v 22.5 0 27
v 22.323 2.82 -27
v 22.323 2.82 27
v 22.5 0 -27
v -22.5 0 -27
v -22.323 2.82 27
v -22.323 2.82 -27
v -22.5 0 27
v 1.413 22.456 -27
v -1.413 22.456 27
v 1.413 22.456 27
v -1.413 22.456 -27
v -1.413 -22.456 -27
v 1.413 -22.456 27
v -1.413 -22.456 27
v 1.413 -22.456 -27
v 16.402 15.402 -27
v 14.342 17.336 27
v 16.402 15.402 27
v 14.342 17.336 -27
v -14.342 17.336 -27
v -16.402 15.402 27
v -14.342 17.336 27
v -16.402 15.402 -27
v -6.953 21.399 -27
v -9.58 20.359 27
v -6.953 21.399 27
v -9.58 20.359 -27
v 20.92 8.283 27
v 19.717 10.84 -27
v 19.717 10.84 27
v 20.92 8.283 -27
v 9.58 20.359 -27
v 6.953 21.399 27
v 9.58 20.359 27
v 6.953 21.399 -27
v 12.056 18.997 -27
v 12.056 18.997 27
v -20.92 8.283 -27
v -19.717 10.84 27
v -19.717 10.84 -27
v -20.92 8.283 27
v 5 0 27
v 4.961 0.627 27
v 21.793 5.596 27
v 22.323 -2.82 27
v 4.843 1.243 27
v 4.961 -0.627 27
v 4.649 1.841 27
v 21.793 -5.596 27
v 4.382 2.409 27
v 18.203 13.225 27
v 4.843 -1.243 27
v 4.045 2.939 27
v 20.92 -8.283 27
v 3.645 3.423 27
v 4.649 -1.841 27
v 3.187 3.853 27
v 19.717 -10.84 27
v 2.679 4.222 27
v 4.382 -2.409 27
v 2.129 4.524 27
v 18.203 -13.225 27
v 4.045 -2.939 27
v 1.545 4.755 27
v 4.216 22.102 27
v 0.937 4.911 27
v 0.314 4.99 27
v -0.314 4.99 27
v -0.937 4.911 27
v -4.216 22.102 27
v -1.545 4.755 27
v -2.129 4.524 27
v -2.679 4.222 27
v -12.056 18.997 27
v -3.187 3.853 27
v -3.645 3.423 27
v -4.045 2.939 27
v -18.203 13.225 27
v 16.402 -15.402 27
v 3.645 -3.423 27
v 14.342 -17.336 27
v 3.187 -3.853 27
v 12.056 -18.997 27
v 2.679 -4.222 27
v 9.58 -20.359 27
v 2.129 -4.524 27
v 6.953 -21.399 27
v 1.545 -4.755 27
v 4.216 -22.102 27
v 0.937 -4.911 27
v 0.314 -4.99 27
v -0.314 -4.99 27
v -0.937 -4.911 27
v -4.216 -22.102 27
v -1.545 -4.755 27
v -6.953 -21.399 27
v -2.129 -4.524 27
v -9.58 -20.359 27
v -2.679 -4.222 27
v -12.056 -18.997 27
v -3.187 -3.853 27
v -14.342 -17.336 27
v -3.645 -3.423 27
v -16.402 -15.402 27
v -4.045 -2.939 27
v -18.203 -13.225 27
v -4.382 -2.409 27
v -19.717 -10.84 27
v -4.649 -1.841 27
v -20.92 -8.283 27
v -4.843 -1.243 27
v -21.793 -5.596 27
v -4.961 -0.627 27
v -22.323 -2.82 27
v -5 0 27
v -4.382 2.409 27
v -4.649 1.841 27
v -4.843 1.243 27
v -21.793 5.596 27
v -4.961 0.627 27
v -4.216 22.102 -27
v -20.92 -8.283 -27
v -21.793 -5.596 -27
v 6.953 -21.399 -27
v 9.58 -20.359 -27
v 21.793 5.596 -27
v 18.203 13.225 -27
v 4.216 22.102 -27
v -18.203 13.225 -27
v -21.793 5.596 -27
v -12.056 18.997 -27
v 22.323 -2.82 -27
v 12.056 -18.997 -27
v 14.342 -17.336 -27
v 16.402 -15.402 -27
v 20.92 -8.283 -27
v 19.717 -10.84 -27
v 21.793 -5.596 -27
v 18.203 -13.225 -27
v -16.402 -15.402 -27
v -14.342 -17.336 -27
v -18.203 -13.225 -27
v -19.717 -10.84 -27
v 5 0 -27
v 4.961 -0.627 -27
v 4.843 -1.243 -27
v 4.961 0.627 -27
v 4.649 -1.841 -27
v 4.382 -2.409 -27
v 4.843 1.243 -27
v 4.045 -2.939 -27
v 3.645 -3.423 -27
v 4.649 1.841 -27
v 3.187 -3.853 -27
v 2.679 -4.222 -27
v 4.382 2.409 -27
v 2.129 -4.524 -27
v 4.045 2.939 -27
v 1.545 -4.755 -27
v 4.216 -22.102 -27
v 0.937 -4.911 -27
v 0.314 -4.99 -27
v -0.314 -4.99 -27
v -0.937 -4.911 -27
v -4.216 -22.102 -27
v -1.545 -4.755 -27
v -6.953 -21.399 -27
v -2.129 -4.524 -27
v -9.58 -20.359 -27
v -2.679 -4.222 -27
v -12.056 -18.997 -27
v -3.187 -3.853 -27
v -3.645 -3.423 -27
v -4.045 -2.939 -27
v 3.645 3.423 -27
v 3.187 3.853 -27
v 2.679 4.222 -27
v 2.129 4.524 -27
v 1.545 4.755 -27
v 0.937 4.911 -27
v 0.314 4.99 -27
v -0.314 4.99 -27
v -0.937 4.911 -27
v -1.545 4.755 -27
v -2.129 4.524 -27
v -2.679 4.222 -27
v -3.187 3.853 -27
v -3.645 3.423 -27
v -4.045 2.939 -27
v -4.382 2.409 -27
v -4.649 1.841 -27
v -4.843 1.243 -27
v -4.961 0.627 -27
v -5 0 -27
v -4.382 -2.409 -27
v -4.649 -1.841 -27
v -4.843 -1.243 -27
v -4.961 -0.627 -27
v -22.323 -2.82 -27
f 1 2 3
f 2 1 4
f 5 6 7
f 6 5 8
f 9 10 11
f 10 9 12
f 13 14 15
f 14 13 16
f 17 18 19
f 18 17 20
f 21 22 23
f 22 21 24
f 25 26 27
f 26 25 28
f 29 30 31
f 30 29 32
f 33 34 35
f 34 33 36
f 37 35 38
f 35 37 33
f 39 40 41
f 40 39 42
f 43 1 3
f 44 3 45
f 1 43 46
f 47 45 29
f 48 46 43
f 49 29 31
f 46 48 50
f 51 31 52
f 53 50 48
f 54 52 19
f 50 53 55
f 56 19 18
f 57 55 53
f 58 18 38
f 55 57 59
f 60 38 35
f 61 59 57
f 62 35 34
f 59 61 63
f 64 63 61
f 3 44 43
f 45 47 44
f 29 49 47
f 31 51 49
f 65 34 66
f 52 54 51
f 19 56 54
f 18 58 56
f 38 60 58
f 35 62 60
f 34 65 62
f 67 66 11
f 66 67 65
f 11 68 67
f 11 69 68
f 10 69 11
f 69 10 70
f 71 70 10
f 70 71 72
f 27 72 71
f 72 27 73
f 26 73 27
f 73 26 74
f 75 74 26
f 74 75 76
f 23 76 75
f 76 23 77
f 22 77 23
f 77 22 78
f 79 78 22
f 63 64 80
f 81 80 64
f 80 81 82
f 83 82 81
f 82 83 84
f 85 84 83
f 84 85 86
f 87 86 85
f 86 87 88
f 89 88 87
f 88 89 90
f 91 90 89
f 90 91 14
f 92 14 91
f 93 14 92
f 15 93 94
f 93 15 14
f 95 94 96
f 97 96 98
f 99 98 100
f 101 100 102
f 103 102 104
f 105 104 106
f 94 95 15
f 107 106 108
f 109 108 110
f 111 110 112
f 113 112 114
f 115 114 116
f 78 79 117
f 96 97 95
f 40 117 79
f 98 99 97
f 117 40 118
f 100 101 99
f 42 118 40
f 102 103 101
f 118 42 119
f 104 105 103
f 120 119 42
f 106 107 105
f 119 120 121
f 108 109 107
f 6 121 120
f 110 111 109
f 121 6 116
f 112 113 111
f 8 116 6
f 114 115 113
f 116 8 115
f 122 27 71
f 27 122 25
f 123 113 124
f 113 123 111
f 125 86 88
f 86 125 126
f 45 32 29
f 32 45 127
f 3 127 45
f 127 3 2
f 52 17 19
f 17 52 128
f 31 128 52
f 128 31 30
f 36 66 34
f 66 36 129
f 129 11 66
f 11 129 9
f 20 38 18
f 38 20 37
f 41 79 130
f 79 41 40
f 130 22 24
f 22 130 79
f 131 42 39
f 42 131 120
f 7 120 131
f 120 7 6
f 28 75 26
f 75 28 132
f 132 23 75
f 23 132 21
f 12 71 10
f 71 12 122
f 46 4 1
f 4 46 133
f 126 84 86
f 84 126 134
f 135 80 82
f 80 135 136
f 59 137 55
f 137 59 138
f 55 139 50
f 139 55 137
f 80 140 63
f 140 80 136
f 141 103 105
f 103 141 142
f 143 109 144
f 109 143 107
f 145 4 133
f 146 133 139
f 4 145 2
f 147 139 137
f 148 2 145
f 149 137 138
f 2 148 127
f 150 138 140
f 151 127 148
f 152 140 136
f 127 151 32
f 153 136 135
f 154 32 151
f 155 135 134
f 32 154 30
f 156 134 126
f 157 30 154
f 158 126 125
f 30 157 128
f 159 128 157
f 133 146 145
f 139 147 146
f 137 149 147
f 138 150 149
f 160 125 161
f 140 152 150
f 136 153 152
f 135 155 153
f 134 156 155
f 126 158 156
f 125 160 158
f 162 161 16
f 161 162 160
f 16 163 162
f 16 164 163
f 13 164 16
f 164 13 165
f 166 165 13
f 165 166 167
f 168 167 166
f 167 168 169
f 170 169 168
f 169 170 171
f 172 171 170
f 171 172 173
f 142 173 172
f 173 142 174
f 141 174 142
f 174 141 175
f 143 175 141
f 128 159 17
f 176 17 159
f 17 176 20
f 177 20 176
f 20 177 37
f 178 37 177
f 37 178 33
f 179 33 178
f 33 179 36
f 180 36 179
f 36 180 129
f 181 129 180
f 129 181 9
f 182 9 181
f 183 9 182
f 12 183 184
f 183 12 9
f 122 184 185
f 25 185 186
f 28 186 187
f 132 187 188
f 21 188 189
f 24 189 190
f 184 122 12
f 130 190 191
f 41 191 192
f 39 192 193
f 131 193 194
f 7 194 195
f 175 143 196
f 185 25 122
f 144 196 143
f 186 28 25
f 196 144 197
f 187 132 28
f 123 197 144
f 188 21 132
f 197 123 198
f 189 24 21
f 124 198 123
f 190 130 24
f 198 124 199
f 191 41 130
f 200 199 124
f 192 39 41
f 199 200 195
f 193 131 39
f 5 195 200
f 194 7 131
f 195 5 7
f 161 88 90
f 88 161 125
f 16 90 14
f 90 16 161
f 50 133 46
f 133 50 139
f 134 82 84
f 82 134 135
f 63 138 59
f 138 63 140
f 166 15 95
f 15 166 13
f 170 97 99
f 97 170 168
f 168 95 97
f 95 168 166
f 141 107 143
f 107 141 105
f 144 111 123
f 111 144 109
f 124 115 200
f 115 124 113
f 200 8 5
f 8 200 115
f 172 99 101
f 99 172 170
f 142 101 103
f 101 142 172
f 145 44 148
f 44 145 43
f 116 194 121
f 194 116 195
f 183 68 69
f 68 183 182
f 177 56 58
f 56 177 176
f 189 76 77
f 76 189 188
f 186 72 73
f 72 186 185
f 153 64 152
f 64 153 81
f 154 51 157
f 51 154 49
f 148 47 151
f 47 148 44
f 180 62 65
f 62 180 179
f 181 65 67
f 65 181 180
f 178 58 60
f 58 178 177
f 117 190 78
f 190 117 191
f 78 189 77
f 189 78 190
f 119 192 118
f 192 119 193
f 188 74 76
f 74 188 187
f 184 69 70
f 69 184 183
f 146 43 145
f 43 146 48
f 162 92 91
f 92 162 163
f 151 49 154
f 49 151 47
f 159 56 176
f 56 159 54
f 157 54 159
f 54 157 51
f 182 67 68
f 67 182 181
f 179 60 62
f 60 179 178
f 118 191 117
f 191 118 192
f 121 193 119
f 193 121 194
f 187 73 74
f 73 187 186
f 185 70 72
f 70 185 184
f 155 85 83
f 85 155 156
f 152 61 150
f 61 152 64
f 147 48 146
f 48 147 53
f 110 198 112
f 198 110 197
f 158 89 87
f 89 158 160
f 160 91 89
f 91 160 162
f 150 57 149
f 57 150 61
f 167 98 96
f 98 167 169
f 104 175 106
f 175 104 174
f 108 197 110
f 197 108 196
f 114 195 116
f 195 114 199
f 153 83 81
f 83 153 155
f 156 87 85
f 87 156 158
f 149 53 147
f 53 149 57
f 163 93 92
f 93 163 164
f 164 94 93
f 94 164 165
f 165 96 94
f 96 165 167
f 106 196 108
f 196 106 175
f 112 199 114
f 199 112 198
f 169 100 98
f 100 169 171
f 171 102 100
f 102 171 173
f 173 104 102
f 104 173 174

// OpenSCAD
$fn = 50;


difference() {
	union() {
		translate(v = [0, 0, -27.0000000000]) {
			cylinder(h = 54, r = 22.5000000000);
		}
	}
	union() {
		translate(v = [0, 0, -100.0000000000]) {
			cylinder(h = 200, r = 5);
		}
	}
}
